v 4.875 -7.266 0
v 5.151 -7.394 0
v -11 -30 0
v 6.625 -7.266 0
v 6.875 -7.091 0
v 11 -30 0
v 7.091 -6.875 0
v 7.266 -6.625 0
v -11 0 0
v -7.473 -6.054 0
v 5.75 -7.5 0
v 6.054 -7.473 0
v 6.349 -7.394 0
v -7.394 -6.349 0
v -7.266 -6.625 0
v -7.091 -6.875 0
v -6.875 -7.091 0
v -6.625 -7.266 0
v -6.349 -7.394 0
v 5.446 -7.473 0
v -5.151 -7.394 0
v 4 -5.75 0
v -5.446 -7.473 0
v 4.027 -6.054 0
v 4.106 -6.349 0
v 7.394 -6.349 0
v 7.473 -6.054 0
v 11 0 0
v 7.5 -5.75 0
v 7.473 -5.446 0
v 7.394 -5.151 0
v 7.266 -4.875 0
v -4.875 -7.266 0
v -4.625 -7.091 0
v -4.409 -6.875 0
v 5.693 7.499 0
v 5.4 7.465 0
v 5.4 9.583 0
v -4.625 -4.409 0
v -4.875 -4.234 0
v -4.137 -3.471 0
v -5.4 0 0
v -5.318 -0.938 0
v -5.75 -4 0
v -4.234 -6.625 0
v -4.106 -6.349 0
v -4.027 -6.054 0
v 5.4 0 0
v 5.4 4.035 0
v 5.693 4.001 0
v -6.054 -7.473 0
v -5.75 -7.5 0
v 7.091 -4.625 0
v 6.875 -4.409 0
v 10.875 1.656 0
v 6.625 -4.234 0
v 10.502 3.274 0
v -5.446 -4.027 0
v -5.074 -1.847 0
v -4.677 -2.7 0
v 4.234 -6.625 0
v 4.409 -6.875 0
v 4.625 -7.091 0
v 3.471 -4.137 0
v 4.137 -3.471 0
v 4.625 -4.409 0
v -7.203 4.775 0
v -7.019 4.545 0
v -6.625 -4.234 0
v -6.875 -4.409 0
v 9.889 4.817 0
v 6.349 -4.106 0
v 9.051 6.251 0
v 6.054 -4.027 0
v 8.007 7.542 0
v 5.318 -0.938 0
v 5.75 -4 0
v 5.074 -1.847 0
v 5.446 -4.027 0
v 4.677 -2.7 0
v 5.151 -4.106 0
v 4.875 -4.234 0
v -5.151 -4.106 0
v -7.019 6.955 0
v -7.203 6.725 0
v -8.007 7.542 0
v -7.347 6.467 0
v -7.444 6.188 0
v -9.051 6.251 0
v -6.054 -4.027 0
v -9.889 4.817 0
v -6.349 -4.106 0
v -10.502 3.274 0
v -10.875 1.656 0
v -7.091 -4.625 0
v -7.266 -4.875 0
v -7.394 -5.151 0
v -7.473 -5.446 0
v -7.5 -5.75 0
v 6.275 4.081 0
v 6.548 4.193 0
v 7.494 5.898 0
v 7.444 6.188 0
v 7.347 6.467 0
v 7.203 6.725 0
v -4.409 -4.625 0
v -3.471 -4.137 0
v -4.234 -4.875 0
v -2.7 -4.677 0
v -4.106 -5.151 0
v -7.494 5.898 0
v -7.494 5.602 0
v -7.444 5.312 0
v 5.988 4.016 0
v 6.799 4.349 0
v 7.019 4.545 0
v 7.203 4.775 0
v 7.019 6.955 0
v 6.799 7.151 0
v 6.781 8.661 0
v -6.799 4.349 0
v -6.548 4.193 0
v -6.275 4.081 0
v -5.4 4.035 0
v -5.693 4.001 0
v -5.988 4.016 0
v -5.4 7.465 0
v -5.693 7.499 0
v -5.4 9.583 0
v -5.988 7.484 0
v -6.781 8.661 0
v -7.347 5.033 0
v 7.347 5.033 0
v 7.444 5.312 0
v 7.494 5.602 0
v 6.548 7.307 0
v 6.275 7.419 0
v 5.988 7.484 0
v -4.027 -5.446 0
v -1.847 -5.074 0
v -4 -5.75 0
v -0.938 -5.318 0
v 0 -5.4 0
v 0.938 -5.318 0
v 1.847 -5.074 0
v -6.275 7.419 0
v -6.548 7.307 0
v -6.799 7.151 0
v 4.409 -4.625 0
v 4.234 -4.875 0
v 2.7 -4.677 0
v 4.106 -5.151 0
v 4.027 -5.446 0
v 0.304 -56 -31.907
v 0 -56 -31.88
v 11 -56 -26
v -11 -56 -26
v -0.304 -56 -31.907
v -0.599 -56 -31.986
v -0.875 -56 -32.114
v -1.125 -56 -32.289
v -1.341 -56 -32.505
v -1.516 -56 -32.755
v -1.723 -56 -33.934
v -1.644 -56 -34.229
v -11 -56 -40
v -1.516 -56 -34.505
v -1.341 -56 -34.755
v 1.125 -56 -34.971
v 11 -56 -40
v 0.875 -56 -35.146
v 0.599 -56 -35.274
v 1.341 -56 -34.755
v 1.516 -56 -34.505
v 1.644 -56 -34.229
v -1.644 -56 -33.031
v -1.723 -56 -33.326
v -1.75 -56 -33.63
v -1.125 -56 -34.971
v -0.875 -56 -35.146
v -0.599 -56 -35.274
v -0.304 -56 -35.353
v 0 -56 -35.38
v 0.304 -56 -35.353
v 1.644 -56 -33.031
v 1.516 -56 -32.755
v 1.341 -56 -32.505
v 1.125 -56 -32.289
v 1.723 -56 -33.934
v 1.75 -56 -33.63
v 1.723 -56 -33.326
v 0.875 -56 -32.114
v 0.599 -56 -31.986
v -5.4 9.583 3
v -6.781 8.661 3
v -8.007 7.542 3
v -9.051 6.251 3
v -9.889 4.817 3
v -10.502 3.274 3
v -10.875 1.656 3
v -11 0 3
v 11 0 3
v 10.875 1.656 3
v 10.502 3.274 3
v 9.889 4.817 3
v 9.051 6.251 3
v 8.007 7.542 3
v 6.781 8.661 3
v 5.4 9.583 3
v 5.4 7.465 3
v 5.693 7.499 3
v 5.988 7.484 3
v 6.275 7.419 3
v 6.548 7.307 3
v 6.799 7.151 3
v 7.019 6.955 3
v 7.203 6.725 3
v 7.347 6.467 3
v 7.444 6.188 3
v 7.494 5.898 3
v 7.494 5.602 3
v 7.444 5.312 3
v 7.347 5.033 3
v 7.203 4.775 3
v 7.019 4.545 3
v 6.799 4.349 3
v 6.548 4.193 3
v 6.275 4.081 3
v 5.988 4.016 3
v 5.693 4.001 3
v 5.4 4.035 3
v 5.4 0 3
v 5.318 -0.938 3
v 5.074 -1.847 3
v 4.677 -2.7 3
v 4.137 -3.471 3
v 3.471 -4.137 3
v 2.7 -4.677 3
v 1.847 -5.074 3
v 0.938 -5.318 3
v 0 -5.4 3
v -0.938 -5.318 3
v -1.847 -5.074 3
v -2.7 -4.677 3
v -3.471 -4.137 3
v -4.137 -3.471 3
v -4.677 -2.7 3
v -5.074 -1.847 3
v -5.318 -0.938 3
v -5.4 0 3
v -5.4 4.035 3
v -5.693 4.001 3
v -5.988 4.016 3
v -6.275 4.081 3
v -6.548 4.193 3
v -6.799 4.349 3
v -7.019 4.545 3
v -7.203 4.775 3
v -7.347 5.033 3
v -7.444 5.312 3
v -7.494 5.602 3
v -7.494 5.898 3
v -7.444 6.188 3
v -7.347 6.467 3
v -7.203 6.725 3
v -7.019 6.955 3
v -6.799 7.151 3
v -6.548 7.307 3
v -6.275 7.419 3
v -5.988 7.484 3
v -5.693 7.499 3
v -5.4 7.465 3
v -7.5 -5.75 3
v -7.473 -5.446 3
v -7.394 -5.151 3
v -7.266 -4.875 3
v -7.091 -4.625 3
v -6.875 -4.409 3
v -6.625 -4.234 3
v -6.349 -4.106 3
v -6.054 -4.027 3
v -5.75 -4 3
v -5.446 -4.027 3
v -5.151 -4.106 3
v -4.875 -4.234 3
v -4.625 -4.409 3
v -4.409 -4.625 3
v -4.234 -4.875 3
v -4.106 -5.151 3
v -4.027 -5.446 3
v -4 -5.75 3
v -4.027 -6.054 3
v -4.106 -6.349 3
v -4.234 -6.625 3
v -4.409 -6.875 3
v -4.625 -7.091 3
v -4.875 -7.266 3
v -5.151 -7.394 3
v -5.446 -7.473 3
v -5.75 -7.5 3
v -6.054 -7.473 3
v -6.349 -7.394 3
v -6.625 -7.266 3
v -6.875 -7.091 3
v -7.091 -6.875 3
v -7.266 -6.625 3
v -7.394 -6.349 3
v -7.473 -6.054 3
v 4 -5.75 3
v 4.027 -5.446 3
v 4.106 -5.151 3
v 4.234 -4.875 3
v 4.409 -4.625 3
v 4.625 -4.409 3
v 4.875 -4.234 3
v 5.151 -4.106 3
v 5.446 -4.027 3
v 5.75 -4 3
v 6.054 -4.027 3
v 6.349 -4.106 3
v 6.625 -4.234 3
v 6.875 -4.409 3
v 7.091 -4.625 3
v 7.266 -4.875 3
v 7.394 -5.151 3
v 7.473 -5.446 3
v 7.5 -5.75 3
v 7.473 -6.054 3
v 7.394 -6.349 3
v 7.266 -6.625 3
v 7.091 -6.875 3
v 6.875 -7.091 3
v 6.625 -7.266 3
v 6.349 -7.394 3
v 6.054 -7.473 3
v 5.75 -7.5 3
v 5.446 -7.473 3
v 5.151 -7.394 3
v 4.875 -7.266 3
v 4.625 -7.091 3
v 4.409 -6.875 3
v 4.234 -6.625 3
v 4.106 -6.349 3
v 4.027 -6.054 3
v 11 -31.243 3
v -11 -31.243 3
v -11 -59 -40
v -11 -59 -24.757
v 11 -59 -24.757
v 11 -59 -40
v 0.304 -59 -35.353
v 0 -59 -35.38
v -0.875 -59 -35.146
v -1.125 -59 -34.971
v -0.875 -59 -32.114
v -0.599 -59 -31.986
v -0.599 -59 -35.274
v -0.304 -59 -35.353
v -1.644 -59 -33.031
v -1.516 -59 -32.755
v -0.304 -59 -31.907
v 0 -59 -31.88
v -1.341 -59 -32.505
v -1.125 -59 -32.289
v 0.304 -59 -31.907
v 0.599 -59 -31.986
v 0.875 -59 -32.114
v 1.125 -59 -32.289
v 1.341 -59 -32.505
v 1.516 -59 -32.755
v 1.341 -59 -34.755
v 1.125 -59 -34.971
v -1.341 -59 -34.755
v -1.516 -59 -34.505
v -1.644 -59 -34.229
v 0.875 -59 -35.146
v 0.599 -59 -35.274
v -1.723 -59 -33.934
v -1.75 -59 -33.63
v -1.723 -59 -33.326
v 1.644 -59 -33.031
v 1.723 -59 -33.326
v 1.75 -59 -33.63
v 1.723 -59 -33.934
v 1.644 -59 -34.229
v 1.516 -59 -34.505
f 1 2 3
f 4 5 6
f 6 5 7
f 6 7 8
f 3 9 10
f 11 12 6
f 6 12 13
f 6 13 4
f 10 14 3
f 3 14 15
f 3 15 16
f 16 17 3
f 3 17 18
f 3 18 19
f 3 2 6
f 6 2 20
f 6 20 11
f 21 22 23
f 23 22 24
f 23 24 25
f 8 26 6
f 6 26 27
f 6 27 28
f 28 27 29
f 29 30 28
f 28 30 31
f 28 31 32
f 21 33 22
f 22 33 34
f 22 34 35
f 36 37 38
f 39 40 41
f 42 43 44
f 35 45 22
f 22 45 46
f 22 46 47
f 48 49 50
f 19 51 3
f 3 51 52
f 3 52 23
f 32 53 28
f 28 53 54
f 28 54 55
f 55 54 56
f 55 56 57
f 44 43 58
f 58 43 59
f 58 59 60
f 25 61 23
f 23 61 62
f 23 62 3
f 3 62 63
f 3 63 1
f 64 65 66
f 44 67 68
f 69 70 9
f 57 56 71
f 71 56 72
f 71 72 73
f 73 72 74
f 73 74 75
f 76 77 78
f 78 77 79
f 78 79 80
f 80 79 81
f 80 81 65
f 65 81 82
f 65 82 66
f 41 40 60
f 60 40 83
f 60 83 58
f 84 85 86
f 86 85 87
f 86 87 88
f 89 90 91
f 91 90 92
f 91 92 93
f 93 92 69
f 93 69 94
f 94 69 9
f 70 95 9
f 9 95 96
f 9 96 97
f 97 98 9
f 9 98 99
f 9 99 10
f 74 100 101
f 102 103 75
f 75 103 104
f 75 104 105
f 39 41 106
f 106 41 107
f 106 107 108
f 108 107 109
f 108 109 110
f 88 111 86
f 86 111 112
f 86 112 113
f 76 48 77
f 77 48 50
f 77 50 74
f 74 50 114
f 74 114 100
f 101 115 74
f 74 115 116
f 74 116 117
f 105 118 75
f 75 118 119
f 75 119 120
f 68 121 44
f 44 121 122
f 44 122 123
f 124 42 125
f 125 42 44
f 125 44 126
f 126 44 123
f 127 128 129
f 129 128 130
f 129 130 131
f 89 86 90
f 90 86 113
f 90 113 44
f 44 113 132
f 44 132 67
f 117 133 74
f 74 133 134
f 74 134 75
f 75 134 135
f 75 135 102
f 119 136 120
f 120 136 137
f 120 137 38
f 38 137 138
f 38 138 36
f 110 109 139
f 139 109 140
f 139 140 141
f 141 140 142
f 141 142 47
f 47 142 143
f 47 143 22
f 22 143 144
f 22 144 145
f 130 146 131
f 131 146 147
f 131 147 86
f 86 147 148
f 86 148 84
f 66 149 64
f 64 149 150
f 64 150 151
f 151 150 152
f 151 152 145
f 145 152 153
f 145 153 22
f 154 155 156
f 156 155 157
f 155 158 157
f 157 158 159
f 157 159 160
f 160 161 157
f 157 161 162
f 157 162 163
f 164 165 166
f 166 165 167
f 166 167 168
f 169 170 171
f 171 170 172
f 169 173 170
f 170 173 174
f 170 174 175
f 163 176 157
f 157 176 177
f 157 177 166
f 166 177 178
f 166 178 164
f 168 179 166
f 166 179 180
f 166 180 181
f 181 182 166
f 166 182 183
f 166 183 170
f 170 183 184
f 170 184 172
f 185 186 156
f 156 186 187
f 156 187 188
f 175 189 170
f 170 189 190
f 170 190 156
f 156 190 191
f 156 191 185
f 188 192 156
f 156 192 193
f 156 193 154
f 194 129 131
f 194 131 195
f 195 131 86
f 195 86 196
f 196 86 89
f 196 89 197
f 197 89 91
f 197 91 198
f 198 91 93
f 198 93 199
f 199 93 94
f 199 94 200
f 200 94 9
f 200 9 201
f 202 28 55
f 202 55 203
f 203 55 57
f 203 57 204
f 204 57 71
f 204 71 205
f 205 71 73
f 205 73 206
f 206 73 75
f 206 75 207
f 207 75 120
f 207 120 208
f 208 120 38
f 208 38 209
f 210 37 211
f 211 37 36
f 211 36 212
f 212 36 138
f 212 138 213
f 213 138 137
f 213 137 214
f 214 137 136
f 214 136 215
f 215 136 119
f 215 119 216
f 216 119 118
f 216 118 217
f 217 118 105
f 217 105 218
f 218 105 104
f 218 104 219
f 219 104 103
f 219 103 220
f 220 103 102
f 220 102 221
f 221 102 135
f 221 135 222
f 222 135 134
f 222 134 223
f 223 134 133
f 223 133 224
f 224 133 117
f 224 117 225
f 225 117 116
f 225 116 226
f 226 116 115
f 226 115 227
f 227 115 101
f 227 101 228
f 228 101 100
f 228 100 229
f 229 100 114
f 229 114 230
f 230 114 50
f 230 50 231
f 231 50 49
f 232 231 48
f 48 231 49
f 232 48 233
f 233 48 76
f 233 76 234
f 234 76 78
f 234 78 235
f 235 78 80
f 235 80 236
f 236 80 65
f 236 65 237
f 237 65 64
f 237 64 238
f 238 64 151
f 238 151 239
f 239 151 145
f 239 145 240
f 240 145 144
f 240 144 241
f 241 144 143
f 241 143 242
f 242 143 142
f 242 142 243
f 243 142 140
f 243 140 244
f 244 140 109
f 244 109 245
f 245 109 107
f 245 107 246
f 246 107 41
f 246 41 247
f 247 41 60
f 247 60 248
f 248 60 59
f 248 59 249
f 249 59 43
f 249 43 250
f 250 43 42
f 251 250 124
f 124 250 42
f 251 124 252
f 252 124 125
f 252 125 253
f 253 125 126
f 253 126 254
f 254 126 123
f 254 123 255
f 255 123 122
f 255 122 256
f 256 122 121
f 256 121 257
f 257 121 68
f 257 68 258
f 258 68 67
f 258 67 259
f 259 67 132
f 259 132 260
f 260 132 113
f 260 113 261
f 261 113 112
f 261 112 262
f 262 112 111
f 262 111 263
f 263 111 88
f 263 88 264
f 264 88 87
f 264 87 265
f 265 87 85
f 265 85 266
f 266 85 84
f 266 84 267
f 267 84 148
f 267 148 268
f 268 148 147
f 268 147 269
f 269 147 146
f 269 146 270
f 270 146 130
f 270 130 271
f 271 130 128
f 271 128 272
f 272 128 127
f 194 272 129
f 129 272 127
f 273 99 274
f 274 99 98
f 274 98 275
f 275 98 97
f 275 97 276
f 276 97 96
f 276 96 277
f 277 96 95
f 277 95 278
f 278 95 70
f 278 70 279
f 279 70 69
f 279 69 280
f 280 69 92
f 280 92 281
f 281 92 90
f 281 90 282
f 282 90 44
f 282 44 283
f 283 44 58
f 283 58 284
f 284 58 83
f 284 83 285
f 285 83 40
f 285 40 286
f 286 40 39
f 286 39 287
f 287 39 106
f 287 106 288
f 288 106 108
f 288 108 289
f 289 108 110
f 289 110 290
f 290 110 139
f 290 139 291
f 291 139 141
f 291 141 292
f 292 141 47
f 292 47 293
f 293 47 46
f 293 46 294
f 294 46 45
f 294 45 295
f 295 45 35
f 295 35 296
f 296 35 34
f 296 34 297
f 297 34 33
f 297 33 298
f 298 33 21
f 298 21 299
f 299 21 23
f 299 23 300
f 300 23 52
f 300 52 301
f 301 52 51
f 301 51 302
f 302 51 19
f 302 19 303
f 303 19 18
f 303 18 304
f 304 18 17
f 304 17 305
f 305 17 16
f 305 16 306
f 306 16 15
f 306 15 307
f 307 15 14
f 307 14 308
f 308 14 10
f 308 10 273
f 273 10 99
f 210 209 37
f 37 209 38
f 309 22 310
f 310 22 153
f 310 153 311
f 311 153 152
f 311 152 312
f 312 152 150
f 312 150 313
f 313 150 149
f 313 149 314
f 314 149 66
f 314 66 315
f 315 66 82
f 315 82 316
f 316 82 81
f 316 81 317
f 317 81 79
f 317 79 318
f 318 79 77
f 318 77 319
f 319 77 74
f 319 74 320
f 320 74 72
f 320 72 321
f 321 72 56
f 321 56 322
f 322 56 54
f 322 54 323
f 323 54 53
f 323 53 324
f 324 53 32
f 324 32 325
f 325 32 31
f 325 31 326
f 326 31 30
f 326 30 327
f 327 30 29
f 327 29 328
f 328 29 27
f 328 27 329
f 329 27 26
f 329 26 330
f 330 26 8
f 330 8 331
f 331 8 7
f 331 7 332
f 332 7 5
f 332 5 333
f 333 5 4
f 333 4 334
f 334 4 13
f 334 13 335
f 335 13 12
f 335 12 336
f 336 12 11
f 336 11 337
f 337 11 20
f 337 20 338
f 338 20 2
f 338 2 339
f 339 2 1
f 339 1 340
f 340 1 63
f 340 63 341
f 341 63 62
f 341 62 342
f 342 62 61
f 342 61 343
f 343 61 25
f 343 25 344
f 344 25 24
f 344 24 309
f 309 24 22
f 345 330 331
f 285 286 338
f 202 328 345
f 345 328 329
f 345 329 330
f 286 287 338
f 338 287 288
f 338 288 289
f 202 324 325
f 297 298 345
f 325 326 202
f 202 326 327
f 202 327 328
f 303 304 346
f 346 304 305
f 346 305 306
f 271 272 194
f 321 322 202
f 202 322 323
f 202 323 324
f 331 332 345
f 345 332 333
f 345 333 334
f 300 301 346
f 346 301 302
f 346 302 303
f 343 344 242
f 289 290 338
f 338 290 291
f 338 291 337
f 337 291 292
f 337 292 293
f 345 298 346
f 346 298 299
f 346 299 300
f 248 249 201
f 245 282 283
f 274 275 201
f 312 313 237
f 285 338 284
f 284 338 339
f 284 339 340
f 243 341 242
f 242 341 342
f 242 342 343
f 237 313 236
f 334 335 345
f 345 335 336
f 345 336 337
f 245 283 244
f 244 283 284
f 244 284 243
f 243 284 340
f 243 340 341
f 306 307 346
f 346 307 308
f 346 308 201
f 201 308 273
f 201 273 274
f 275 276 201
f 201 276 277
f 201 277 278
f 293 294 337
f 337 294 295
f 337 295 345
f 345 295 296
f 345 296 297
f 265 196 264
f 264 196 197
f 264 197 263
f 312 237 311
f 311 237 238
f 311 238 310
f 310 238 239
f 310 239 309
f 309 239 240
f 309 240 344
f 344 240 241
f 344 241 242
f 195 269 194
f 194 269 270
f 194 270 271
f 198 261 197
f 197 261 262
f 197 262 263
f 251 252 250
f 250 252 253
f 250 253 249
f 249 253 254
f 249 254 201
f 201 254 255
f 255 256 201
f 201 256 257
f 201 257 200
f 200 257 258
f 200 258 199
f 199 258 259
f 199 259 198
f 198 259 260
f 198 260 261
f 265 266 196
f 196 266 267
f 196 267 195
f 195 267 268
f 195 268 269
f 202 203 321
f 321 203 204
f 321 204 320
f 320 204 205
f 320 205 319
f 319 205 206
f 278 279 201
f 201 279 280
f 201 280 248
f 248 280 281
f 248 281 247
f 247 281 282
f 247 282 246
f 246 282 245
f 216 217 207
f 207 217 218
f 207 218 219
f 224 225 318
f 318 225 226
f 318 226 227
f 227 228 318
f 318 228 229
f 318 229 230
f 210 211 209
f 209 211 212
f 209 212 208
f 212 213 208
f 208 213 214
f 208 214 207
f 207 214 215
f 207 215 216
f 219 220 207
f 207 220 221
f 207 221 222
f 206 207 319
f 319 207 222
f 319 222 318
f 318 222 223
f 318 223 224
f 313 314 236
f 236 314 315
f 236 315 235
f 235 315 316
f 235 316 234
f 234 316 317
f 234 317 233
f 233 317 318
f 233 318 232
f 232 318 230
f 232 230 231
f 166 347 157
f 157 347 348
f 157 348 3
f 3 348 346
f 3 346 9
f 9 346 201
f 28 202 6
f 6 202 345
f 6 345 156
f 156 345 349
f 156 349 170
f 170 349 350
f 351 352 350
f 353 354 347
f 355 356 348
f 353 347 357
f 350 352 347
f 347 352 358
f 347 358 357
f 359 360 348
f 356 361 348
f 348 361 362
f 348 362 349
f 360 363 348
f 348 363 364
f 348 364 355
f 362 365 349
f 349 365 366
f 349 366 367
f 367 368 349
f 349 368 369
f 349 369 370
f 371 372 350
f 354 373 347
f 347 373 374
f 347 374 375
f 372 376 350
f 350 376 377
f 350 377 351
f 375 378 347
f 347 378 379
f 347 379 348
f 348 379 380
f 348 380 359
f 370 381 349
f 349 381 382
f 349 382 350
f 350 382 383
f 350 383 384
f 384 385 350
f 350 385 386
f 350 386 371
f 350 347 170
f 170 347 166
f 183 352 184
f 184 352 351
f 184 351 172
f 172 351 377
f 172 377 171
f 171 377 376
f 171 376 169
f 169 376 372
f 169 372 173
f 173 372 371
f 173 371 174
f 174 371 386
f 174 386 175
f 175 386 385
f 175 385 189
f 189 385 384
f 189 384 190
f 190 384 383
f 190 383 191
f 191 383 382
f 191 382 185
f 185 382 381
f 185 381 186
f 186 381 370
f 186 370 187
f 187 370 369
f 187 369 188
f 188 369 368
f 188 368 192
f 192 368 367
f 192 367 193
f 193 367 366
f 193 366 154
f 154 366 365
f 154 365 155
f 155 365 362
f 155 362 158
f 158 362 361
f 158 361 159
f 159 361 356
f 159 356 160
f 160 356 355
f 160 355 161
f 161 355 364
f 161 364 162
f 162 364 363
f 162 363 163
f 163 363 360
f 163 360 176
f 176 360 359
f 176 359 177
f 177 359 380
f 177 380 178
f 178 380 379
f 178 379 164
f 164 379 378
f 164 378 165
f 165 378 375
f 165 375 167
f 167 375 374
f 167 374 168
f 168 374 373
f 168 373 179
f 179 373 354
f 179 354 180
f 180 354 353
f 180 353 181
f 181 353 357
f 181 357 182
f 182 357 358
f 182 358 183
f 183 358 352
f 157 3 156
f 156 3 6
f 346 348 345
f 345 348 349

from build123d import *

# Parameters (mm, degrees)
SKETCH1_R           = 1.75
BOSS_EXTRUDE1_DEPTH = 3
BOSS_EXTRUDE2_DEPTH = 3
SKETCH4_W           = 40
SKETCH4_H           = 3
BOSS_EXTRUDE3_DEPTH = 22
SKETCH5_R           = 1.75
CUT_EXTRUDE1_DEPTH  = 10
BOSS_EXTRUDE4_DEPTH = 1
BOSS_EXTRUDE5_DEPTH = 22
CUT_EXTRUDE2_DEPTH  = 75.598927606


# Read off the part's stored shape, not the designer's step: Boss-Extrude2
with BuildPart() as part:
    # Sketch1 → Boss-Extrude1 (new body)
    with BuildSketch(Plane.XY):
        with BuildLine():
            Line((5.4, 4.03535718), (5.4, 0))
            ThreePointArc((5.4, 0), (0, -5.4), (-5.4, 0))
            Line((-5.4, 0), (-5.4, 4.03535718))
            ThreePointArc((-5.4, 4.03535718), (-7.5, 5.75), (-5.4, 7.46464282))
            Line((-5.4, 7.46464282), (-5.4, 9.583318841))
            ThreePointArc((-5.4, 9.583318841), (0, -11), (5.4, 9.583318841))
            Line((5.4, 9.583318841), (5.4, 7.46464282))
            ThreePointArc((5.4, 7.46464282), (6.856797181, 7.105544171), (7.5, 5.75))
            ThreePointArc((7.5, 5.75), (6.856797181, 4.394455829), (5.4, 4.03535718))
        make_face()
        with Locations((-5.75, -5.75)):
            Circle(SKETCH1_R, mode=Mode.SUBTRACT)
        with Locations((5.75, -5.75)):
            Circle(SKETCH1_R, mode=Mode.SUBTRACT)
    extrude(amount=BOSS_EXTRUDE1_DEPTH)

    # Boss-Extrude2 outline → Boss-Extrude2 (add)
    with BuildSketch(Plane.XY):
        with BuildLine():
            Line((-11, 0), (-11, -59))
            Line((-11, -59), (11, -59))
            Line((11, -59), (11, 0))
            ThreePointArc((11, 0), (0, -11), (-11, 0))
        make_face()
    extrude(amount=BOSS_EXTRUDE2_DEPTH)

    # Sketch4 → Boss-Extrude3 (add)
    with BuildSketch(Plane.ZY.offset(11)):
        with Locations((-20, -57.5)):
            Rectangle(SKETCH4_W, SKETCH4_H)
    extrude(amount=-BOSS_EXTRUDE3_DEPTH)

    # Sketch5 → Cut-Extrude1 (cut)
    with BuildSketch(Plane(origin=(0, -59, 0), x_dir=(-1, 0, 0), z_dir=(0, -1, 0))):
        with Locations(Location((0, 33.63, 0), (0, 0, 90))):
            Circle(SKETCH5_R)
    extrude(amount=-CUT_EXTRUDE1_DEPTH, mode=Mode.SUBTRACT)

    # Sketch6 → Boss-Extrude4 (add)
    with BuildSketch(Plane.ZY.offset(11)):
        Polygon((-20, -56), (0, -36), (0, -56), align=None)
    boss_extrude4 = extrude(amount=-BOSS_EXTRUDE4_DEPTH)

    # Mirror1: Boss-Extrude4 across plane
    add(boss_extrude4.mirror(Plane(origin=(0, 0, 0), x_dir=(0, 0, 1), z_dir=(1, 0, 0))))

    # Sketch7 → Boss-Extrude5 (add, through all)
    with BuildSketch(Plane(origin=(11, 0, 0), x_dir=(0, 0, -1), z_dir=(1, 0, 0))):
        Polygon((0, -30), (26, -56), (21.757359313, -56), (0, -34.242640687), align=None)
    extrude(amount=-BOSS_EXTRUDE5_DEPTH)

    # Sketch8 → Cut-Extrude2 (cut, through all)
    with BuildSketch(Plane(origin=(11, 0, 0), x_dir=(0, 0, -1), z_dir=(1, 0, 0))):
        Polygon((10.878679656, -45.121320344), (24.757359313, -59), (-3, -59), (-3, -31.242640687), align=None)
    extrude(amount=-CUT_EXTRUDE2_DEPTH, mode=Mode.SUBTRACT)


solid = part.part
